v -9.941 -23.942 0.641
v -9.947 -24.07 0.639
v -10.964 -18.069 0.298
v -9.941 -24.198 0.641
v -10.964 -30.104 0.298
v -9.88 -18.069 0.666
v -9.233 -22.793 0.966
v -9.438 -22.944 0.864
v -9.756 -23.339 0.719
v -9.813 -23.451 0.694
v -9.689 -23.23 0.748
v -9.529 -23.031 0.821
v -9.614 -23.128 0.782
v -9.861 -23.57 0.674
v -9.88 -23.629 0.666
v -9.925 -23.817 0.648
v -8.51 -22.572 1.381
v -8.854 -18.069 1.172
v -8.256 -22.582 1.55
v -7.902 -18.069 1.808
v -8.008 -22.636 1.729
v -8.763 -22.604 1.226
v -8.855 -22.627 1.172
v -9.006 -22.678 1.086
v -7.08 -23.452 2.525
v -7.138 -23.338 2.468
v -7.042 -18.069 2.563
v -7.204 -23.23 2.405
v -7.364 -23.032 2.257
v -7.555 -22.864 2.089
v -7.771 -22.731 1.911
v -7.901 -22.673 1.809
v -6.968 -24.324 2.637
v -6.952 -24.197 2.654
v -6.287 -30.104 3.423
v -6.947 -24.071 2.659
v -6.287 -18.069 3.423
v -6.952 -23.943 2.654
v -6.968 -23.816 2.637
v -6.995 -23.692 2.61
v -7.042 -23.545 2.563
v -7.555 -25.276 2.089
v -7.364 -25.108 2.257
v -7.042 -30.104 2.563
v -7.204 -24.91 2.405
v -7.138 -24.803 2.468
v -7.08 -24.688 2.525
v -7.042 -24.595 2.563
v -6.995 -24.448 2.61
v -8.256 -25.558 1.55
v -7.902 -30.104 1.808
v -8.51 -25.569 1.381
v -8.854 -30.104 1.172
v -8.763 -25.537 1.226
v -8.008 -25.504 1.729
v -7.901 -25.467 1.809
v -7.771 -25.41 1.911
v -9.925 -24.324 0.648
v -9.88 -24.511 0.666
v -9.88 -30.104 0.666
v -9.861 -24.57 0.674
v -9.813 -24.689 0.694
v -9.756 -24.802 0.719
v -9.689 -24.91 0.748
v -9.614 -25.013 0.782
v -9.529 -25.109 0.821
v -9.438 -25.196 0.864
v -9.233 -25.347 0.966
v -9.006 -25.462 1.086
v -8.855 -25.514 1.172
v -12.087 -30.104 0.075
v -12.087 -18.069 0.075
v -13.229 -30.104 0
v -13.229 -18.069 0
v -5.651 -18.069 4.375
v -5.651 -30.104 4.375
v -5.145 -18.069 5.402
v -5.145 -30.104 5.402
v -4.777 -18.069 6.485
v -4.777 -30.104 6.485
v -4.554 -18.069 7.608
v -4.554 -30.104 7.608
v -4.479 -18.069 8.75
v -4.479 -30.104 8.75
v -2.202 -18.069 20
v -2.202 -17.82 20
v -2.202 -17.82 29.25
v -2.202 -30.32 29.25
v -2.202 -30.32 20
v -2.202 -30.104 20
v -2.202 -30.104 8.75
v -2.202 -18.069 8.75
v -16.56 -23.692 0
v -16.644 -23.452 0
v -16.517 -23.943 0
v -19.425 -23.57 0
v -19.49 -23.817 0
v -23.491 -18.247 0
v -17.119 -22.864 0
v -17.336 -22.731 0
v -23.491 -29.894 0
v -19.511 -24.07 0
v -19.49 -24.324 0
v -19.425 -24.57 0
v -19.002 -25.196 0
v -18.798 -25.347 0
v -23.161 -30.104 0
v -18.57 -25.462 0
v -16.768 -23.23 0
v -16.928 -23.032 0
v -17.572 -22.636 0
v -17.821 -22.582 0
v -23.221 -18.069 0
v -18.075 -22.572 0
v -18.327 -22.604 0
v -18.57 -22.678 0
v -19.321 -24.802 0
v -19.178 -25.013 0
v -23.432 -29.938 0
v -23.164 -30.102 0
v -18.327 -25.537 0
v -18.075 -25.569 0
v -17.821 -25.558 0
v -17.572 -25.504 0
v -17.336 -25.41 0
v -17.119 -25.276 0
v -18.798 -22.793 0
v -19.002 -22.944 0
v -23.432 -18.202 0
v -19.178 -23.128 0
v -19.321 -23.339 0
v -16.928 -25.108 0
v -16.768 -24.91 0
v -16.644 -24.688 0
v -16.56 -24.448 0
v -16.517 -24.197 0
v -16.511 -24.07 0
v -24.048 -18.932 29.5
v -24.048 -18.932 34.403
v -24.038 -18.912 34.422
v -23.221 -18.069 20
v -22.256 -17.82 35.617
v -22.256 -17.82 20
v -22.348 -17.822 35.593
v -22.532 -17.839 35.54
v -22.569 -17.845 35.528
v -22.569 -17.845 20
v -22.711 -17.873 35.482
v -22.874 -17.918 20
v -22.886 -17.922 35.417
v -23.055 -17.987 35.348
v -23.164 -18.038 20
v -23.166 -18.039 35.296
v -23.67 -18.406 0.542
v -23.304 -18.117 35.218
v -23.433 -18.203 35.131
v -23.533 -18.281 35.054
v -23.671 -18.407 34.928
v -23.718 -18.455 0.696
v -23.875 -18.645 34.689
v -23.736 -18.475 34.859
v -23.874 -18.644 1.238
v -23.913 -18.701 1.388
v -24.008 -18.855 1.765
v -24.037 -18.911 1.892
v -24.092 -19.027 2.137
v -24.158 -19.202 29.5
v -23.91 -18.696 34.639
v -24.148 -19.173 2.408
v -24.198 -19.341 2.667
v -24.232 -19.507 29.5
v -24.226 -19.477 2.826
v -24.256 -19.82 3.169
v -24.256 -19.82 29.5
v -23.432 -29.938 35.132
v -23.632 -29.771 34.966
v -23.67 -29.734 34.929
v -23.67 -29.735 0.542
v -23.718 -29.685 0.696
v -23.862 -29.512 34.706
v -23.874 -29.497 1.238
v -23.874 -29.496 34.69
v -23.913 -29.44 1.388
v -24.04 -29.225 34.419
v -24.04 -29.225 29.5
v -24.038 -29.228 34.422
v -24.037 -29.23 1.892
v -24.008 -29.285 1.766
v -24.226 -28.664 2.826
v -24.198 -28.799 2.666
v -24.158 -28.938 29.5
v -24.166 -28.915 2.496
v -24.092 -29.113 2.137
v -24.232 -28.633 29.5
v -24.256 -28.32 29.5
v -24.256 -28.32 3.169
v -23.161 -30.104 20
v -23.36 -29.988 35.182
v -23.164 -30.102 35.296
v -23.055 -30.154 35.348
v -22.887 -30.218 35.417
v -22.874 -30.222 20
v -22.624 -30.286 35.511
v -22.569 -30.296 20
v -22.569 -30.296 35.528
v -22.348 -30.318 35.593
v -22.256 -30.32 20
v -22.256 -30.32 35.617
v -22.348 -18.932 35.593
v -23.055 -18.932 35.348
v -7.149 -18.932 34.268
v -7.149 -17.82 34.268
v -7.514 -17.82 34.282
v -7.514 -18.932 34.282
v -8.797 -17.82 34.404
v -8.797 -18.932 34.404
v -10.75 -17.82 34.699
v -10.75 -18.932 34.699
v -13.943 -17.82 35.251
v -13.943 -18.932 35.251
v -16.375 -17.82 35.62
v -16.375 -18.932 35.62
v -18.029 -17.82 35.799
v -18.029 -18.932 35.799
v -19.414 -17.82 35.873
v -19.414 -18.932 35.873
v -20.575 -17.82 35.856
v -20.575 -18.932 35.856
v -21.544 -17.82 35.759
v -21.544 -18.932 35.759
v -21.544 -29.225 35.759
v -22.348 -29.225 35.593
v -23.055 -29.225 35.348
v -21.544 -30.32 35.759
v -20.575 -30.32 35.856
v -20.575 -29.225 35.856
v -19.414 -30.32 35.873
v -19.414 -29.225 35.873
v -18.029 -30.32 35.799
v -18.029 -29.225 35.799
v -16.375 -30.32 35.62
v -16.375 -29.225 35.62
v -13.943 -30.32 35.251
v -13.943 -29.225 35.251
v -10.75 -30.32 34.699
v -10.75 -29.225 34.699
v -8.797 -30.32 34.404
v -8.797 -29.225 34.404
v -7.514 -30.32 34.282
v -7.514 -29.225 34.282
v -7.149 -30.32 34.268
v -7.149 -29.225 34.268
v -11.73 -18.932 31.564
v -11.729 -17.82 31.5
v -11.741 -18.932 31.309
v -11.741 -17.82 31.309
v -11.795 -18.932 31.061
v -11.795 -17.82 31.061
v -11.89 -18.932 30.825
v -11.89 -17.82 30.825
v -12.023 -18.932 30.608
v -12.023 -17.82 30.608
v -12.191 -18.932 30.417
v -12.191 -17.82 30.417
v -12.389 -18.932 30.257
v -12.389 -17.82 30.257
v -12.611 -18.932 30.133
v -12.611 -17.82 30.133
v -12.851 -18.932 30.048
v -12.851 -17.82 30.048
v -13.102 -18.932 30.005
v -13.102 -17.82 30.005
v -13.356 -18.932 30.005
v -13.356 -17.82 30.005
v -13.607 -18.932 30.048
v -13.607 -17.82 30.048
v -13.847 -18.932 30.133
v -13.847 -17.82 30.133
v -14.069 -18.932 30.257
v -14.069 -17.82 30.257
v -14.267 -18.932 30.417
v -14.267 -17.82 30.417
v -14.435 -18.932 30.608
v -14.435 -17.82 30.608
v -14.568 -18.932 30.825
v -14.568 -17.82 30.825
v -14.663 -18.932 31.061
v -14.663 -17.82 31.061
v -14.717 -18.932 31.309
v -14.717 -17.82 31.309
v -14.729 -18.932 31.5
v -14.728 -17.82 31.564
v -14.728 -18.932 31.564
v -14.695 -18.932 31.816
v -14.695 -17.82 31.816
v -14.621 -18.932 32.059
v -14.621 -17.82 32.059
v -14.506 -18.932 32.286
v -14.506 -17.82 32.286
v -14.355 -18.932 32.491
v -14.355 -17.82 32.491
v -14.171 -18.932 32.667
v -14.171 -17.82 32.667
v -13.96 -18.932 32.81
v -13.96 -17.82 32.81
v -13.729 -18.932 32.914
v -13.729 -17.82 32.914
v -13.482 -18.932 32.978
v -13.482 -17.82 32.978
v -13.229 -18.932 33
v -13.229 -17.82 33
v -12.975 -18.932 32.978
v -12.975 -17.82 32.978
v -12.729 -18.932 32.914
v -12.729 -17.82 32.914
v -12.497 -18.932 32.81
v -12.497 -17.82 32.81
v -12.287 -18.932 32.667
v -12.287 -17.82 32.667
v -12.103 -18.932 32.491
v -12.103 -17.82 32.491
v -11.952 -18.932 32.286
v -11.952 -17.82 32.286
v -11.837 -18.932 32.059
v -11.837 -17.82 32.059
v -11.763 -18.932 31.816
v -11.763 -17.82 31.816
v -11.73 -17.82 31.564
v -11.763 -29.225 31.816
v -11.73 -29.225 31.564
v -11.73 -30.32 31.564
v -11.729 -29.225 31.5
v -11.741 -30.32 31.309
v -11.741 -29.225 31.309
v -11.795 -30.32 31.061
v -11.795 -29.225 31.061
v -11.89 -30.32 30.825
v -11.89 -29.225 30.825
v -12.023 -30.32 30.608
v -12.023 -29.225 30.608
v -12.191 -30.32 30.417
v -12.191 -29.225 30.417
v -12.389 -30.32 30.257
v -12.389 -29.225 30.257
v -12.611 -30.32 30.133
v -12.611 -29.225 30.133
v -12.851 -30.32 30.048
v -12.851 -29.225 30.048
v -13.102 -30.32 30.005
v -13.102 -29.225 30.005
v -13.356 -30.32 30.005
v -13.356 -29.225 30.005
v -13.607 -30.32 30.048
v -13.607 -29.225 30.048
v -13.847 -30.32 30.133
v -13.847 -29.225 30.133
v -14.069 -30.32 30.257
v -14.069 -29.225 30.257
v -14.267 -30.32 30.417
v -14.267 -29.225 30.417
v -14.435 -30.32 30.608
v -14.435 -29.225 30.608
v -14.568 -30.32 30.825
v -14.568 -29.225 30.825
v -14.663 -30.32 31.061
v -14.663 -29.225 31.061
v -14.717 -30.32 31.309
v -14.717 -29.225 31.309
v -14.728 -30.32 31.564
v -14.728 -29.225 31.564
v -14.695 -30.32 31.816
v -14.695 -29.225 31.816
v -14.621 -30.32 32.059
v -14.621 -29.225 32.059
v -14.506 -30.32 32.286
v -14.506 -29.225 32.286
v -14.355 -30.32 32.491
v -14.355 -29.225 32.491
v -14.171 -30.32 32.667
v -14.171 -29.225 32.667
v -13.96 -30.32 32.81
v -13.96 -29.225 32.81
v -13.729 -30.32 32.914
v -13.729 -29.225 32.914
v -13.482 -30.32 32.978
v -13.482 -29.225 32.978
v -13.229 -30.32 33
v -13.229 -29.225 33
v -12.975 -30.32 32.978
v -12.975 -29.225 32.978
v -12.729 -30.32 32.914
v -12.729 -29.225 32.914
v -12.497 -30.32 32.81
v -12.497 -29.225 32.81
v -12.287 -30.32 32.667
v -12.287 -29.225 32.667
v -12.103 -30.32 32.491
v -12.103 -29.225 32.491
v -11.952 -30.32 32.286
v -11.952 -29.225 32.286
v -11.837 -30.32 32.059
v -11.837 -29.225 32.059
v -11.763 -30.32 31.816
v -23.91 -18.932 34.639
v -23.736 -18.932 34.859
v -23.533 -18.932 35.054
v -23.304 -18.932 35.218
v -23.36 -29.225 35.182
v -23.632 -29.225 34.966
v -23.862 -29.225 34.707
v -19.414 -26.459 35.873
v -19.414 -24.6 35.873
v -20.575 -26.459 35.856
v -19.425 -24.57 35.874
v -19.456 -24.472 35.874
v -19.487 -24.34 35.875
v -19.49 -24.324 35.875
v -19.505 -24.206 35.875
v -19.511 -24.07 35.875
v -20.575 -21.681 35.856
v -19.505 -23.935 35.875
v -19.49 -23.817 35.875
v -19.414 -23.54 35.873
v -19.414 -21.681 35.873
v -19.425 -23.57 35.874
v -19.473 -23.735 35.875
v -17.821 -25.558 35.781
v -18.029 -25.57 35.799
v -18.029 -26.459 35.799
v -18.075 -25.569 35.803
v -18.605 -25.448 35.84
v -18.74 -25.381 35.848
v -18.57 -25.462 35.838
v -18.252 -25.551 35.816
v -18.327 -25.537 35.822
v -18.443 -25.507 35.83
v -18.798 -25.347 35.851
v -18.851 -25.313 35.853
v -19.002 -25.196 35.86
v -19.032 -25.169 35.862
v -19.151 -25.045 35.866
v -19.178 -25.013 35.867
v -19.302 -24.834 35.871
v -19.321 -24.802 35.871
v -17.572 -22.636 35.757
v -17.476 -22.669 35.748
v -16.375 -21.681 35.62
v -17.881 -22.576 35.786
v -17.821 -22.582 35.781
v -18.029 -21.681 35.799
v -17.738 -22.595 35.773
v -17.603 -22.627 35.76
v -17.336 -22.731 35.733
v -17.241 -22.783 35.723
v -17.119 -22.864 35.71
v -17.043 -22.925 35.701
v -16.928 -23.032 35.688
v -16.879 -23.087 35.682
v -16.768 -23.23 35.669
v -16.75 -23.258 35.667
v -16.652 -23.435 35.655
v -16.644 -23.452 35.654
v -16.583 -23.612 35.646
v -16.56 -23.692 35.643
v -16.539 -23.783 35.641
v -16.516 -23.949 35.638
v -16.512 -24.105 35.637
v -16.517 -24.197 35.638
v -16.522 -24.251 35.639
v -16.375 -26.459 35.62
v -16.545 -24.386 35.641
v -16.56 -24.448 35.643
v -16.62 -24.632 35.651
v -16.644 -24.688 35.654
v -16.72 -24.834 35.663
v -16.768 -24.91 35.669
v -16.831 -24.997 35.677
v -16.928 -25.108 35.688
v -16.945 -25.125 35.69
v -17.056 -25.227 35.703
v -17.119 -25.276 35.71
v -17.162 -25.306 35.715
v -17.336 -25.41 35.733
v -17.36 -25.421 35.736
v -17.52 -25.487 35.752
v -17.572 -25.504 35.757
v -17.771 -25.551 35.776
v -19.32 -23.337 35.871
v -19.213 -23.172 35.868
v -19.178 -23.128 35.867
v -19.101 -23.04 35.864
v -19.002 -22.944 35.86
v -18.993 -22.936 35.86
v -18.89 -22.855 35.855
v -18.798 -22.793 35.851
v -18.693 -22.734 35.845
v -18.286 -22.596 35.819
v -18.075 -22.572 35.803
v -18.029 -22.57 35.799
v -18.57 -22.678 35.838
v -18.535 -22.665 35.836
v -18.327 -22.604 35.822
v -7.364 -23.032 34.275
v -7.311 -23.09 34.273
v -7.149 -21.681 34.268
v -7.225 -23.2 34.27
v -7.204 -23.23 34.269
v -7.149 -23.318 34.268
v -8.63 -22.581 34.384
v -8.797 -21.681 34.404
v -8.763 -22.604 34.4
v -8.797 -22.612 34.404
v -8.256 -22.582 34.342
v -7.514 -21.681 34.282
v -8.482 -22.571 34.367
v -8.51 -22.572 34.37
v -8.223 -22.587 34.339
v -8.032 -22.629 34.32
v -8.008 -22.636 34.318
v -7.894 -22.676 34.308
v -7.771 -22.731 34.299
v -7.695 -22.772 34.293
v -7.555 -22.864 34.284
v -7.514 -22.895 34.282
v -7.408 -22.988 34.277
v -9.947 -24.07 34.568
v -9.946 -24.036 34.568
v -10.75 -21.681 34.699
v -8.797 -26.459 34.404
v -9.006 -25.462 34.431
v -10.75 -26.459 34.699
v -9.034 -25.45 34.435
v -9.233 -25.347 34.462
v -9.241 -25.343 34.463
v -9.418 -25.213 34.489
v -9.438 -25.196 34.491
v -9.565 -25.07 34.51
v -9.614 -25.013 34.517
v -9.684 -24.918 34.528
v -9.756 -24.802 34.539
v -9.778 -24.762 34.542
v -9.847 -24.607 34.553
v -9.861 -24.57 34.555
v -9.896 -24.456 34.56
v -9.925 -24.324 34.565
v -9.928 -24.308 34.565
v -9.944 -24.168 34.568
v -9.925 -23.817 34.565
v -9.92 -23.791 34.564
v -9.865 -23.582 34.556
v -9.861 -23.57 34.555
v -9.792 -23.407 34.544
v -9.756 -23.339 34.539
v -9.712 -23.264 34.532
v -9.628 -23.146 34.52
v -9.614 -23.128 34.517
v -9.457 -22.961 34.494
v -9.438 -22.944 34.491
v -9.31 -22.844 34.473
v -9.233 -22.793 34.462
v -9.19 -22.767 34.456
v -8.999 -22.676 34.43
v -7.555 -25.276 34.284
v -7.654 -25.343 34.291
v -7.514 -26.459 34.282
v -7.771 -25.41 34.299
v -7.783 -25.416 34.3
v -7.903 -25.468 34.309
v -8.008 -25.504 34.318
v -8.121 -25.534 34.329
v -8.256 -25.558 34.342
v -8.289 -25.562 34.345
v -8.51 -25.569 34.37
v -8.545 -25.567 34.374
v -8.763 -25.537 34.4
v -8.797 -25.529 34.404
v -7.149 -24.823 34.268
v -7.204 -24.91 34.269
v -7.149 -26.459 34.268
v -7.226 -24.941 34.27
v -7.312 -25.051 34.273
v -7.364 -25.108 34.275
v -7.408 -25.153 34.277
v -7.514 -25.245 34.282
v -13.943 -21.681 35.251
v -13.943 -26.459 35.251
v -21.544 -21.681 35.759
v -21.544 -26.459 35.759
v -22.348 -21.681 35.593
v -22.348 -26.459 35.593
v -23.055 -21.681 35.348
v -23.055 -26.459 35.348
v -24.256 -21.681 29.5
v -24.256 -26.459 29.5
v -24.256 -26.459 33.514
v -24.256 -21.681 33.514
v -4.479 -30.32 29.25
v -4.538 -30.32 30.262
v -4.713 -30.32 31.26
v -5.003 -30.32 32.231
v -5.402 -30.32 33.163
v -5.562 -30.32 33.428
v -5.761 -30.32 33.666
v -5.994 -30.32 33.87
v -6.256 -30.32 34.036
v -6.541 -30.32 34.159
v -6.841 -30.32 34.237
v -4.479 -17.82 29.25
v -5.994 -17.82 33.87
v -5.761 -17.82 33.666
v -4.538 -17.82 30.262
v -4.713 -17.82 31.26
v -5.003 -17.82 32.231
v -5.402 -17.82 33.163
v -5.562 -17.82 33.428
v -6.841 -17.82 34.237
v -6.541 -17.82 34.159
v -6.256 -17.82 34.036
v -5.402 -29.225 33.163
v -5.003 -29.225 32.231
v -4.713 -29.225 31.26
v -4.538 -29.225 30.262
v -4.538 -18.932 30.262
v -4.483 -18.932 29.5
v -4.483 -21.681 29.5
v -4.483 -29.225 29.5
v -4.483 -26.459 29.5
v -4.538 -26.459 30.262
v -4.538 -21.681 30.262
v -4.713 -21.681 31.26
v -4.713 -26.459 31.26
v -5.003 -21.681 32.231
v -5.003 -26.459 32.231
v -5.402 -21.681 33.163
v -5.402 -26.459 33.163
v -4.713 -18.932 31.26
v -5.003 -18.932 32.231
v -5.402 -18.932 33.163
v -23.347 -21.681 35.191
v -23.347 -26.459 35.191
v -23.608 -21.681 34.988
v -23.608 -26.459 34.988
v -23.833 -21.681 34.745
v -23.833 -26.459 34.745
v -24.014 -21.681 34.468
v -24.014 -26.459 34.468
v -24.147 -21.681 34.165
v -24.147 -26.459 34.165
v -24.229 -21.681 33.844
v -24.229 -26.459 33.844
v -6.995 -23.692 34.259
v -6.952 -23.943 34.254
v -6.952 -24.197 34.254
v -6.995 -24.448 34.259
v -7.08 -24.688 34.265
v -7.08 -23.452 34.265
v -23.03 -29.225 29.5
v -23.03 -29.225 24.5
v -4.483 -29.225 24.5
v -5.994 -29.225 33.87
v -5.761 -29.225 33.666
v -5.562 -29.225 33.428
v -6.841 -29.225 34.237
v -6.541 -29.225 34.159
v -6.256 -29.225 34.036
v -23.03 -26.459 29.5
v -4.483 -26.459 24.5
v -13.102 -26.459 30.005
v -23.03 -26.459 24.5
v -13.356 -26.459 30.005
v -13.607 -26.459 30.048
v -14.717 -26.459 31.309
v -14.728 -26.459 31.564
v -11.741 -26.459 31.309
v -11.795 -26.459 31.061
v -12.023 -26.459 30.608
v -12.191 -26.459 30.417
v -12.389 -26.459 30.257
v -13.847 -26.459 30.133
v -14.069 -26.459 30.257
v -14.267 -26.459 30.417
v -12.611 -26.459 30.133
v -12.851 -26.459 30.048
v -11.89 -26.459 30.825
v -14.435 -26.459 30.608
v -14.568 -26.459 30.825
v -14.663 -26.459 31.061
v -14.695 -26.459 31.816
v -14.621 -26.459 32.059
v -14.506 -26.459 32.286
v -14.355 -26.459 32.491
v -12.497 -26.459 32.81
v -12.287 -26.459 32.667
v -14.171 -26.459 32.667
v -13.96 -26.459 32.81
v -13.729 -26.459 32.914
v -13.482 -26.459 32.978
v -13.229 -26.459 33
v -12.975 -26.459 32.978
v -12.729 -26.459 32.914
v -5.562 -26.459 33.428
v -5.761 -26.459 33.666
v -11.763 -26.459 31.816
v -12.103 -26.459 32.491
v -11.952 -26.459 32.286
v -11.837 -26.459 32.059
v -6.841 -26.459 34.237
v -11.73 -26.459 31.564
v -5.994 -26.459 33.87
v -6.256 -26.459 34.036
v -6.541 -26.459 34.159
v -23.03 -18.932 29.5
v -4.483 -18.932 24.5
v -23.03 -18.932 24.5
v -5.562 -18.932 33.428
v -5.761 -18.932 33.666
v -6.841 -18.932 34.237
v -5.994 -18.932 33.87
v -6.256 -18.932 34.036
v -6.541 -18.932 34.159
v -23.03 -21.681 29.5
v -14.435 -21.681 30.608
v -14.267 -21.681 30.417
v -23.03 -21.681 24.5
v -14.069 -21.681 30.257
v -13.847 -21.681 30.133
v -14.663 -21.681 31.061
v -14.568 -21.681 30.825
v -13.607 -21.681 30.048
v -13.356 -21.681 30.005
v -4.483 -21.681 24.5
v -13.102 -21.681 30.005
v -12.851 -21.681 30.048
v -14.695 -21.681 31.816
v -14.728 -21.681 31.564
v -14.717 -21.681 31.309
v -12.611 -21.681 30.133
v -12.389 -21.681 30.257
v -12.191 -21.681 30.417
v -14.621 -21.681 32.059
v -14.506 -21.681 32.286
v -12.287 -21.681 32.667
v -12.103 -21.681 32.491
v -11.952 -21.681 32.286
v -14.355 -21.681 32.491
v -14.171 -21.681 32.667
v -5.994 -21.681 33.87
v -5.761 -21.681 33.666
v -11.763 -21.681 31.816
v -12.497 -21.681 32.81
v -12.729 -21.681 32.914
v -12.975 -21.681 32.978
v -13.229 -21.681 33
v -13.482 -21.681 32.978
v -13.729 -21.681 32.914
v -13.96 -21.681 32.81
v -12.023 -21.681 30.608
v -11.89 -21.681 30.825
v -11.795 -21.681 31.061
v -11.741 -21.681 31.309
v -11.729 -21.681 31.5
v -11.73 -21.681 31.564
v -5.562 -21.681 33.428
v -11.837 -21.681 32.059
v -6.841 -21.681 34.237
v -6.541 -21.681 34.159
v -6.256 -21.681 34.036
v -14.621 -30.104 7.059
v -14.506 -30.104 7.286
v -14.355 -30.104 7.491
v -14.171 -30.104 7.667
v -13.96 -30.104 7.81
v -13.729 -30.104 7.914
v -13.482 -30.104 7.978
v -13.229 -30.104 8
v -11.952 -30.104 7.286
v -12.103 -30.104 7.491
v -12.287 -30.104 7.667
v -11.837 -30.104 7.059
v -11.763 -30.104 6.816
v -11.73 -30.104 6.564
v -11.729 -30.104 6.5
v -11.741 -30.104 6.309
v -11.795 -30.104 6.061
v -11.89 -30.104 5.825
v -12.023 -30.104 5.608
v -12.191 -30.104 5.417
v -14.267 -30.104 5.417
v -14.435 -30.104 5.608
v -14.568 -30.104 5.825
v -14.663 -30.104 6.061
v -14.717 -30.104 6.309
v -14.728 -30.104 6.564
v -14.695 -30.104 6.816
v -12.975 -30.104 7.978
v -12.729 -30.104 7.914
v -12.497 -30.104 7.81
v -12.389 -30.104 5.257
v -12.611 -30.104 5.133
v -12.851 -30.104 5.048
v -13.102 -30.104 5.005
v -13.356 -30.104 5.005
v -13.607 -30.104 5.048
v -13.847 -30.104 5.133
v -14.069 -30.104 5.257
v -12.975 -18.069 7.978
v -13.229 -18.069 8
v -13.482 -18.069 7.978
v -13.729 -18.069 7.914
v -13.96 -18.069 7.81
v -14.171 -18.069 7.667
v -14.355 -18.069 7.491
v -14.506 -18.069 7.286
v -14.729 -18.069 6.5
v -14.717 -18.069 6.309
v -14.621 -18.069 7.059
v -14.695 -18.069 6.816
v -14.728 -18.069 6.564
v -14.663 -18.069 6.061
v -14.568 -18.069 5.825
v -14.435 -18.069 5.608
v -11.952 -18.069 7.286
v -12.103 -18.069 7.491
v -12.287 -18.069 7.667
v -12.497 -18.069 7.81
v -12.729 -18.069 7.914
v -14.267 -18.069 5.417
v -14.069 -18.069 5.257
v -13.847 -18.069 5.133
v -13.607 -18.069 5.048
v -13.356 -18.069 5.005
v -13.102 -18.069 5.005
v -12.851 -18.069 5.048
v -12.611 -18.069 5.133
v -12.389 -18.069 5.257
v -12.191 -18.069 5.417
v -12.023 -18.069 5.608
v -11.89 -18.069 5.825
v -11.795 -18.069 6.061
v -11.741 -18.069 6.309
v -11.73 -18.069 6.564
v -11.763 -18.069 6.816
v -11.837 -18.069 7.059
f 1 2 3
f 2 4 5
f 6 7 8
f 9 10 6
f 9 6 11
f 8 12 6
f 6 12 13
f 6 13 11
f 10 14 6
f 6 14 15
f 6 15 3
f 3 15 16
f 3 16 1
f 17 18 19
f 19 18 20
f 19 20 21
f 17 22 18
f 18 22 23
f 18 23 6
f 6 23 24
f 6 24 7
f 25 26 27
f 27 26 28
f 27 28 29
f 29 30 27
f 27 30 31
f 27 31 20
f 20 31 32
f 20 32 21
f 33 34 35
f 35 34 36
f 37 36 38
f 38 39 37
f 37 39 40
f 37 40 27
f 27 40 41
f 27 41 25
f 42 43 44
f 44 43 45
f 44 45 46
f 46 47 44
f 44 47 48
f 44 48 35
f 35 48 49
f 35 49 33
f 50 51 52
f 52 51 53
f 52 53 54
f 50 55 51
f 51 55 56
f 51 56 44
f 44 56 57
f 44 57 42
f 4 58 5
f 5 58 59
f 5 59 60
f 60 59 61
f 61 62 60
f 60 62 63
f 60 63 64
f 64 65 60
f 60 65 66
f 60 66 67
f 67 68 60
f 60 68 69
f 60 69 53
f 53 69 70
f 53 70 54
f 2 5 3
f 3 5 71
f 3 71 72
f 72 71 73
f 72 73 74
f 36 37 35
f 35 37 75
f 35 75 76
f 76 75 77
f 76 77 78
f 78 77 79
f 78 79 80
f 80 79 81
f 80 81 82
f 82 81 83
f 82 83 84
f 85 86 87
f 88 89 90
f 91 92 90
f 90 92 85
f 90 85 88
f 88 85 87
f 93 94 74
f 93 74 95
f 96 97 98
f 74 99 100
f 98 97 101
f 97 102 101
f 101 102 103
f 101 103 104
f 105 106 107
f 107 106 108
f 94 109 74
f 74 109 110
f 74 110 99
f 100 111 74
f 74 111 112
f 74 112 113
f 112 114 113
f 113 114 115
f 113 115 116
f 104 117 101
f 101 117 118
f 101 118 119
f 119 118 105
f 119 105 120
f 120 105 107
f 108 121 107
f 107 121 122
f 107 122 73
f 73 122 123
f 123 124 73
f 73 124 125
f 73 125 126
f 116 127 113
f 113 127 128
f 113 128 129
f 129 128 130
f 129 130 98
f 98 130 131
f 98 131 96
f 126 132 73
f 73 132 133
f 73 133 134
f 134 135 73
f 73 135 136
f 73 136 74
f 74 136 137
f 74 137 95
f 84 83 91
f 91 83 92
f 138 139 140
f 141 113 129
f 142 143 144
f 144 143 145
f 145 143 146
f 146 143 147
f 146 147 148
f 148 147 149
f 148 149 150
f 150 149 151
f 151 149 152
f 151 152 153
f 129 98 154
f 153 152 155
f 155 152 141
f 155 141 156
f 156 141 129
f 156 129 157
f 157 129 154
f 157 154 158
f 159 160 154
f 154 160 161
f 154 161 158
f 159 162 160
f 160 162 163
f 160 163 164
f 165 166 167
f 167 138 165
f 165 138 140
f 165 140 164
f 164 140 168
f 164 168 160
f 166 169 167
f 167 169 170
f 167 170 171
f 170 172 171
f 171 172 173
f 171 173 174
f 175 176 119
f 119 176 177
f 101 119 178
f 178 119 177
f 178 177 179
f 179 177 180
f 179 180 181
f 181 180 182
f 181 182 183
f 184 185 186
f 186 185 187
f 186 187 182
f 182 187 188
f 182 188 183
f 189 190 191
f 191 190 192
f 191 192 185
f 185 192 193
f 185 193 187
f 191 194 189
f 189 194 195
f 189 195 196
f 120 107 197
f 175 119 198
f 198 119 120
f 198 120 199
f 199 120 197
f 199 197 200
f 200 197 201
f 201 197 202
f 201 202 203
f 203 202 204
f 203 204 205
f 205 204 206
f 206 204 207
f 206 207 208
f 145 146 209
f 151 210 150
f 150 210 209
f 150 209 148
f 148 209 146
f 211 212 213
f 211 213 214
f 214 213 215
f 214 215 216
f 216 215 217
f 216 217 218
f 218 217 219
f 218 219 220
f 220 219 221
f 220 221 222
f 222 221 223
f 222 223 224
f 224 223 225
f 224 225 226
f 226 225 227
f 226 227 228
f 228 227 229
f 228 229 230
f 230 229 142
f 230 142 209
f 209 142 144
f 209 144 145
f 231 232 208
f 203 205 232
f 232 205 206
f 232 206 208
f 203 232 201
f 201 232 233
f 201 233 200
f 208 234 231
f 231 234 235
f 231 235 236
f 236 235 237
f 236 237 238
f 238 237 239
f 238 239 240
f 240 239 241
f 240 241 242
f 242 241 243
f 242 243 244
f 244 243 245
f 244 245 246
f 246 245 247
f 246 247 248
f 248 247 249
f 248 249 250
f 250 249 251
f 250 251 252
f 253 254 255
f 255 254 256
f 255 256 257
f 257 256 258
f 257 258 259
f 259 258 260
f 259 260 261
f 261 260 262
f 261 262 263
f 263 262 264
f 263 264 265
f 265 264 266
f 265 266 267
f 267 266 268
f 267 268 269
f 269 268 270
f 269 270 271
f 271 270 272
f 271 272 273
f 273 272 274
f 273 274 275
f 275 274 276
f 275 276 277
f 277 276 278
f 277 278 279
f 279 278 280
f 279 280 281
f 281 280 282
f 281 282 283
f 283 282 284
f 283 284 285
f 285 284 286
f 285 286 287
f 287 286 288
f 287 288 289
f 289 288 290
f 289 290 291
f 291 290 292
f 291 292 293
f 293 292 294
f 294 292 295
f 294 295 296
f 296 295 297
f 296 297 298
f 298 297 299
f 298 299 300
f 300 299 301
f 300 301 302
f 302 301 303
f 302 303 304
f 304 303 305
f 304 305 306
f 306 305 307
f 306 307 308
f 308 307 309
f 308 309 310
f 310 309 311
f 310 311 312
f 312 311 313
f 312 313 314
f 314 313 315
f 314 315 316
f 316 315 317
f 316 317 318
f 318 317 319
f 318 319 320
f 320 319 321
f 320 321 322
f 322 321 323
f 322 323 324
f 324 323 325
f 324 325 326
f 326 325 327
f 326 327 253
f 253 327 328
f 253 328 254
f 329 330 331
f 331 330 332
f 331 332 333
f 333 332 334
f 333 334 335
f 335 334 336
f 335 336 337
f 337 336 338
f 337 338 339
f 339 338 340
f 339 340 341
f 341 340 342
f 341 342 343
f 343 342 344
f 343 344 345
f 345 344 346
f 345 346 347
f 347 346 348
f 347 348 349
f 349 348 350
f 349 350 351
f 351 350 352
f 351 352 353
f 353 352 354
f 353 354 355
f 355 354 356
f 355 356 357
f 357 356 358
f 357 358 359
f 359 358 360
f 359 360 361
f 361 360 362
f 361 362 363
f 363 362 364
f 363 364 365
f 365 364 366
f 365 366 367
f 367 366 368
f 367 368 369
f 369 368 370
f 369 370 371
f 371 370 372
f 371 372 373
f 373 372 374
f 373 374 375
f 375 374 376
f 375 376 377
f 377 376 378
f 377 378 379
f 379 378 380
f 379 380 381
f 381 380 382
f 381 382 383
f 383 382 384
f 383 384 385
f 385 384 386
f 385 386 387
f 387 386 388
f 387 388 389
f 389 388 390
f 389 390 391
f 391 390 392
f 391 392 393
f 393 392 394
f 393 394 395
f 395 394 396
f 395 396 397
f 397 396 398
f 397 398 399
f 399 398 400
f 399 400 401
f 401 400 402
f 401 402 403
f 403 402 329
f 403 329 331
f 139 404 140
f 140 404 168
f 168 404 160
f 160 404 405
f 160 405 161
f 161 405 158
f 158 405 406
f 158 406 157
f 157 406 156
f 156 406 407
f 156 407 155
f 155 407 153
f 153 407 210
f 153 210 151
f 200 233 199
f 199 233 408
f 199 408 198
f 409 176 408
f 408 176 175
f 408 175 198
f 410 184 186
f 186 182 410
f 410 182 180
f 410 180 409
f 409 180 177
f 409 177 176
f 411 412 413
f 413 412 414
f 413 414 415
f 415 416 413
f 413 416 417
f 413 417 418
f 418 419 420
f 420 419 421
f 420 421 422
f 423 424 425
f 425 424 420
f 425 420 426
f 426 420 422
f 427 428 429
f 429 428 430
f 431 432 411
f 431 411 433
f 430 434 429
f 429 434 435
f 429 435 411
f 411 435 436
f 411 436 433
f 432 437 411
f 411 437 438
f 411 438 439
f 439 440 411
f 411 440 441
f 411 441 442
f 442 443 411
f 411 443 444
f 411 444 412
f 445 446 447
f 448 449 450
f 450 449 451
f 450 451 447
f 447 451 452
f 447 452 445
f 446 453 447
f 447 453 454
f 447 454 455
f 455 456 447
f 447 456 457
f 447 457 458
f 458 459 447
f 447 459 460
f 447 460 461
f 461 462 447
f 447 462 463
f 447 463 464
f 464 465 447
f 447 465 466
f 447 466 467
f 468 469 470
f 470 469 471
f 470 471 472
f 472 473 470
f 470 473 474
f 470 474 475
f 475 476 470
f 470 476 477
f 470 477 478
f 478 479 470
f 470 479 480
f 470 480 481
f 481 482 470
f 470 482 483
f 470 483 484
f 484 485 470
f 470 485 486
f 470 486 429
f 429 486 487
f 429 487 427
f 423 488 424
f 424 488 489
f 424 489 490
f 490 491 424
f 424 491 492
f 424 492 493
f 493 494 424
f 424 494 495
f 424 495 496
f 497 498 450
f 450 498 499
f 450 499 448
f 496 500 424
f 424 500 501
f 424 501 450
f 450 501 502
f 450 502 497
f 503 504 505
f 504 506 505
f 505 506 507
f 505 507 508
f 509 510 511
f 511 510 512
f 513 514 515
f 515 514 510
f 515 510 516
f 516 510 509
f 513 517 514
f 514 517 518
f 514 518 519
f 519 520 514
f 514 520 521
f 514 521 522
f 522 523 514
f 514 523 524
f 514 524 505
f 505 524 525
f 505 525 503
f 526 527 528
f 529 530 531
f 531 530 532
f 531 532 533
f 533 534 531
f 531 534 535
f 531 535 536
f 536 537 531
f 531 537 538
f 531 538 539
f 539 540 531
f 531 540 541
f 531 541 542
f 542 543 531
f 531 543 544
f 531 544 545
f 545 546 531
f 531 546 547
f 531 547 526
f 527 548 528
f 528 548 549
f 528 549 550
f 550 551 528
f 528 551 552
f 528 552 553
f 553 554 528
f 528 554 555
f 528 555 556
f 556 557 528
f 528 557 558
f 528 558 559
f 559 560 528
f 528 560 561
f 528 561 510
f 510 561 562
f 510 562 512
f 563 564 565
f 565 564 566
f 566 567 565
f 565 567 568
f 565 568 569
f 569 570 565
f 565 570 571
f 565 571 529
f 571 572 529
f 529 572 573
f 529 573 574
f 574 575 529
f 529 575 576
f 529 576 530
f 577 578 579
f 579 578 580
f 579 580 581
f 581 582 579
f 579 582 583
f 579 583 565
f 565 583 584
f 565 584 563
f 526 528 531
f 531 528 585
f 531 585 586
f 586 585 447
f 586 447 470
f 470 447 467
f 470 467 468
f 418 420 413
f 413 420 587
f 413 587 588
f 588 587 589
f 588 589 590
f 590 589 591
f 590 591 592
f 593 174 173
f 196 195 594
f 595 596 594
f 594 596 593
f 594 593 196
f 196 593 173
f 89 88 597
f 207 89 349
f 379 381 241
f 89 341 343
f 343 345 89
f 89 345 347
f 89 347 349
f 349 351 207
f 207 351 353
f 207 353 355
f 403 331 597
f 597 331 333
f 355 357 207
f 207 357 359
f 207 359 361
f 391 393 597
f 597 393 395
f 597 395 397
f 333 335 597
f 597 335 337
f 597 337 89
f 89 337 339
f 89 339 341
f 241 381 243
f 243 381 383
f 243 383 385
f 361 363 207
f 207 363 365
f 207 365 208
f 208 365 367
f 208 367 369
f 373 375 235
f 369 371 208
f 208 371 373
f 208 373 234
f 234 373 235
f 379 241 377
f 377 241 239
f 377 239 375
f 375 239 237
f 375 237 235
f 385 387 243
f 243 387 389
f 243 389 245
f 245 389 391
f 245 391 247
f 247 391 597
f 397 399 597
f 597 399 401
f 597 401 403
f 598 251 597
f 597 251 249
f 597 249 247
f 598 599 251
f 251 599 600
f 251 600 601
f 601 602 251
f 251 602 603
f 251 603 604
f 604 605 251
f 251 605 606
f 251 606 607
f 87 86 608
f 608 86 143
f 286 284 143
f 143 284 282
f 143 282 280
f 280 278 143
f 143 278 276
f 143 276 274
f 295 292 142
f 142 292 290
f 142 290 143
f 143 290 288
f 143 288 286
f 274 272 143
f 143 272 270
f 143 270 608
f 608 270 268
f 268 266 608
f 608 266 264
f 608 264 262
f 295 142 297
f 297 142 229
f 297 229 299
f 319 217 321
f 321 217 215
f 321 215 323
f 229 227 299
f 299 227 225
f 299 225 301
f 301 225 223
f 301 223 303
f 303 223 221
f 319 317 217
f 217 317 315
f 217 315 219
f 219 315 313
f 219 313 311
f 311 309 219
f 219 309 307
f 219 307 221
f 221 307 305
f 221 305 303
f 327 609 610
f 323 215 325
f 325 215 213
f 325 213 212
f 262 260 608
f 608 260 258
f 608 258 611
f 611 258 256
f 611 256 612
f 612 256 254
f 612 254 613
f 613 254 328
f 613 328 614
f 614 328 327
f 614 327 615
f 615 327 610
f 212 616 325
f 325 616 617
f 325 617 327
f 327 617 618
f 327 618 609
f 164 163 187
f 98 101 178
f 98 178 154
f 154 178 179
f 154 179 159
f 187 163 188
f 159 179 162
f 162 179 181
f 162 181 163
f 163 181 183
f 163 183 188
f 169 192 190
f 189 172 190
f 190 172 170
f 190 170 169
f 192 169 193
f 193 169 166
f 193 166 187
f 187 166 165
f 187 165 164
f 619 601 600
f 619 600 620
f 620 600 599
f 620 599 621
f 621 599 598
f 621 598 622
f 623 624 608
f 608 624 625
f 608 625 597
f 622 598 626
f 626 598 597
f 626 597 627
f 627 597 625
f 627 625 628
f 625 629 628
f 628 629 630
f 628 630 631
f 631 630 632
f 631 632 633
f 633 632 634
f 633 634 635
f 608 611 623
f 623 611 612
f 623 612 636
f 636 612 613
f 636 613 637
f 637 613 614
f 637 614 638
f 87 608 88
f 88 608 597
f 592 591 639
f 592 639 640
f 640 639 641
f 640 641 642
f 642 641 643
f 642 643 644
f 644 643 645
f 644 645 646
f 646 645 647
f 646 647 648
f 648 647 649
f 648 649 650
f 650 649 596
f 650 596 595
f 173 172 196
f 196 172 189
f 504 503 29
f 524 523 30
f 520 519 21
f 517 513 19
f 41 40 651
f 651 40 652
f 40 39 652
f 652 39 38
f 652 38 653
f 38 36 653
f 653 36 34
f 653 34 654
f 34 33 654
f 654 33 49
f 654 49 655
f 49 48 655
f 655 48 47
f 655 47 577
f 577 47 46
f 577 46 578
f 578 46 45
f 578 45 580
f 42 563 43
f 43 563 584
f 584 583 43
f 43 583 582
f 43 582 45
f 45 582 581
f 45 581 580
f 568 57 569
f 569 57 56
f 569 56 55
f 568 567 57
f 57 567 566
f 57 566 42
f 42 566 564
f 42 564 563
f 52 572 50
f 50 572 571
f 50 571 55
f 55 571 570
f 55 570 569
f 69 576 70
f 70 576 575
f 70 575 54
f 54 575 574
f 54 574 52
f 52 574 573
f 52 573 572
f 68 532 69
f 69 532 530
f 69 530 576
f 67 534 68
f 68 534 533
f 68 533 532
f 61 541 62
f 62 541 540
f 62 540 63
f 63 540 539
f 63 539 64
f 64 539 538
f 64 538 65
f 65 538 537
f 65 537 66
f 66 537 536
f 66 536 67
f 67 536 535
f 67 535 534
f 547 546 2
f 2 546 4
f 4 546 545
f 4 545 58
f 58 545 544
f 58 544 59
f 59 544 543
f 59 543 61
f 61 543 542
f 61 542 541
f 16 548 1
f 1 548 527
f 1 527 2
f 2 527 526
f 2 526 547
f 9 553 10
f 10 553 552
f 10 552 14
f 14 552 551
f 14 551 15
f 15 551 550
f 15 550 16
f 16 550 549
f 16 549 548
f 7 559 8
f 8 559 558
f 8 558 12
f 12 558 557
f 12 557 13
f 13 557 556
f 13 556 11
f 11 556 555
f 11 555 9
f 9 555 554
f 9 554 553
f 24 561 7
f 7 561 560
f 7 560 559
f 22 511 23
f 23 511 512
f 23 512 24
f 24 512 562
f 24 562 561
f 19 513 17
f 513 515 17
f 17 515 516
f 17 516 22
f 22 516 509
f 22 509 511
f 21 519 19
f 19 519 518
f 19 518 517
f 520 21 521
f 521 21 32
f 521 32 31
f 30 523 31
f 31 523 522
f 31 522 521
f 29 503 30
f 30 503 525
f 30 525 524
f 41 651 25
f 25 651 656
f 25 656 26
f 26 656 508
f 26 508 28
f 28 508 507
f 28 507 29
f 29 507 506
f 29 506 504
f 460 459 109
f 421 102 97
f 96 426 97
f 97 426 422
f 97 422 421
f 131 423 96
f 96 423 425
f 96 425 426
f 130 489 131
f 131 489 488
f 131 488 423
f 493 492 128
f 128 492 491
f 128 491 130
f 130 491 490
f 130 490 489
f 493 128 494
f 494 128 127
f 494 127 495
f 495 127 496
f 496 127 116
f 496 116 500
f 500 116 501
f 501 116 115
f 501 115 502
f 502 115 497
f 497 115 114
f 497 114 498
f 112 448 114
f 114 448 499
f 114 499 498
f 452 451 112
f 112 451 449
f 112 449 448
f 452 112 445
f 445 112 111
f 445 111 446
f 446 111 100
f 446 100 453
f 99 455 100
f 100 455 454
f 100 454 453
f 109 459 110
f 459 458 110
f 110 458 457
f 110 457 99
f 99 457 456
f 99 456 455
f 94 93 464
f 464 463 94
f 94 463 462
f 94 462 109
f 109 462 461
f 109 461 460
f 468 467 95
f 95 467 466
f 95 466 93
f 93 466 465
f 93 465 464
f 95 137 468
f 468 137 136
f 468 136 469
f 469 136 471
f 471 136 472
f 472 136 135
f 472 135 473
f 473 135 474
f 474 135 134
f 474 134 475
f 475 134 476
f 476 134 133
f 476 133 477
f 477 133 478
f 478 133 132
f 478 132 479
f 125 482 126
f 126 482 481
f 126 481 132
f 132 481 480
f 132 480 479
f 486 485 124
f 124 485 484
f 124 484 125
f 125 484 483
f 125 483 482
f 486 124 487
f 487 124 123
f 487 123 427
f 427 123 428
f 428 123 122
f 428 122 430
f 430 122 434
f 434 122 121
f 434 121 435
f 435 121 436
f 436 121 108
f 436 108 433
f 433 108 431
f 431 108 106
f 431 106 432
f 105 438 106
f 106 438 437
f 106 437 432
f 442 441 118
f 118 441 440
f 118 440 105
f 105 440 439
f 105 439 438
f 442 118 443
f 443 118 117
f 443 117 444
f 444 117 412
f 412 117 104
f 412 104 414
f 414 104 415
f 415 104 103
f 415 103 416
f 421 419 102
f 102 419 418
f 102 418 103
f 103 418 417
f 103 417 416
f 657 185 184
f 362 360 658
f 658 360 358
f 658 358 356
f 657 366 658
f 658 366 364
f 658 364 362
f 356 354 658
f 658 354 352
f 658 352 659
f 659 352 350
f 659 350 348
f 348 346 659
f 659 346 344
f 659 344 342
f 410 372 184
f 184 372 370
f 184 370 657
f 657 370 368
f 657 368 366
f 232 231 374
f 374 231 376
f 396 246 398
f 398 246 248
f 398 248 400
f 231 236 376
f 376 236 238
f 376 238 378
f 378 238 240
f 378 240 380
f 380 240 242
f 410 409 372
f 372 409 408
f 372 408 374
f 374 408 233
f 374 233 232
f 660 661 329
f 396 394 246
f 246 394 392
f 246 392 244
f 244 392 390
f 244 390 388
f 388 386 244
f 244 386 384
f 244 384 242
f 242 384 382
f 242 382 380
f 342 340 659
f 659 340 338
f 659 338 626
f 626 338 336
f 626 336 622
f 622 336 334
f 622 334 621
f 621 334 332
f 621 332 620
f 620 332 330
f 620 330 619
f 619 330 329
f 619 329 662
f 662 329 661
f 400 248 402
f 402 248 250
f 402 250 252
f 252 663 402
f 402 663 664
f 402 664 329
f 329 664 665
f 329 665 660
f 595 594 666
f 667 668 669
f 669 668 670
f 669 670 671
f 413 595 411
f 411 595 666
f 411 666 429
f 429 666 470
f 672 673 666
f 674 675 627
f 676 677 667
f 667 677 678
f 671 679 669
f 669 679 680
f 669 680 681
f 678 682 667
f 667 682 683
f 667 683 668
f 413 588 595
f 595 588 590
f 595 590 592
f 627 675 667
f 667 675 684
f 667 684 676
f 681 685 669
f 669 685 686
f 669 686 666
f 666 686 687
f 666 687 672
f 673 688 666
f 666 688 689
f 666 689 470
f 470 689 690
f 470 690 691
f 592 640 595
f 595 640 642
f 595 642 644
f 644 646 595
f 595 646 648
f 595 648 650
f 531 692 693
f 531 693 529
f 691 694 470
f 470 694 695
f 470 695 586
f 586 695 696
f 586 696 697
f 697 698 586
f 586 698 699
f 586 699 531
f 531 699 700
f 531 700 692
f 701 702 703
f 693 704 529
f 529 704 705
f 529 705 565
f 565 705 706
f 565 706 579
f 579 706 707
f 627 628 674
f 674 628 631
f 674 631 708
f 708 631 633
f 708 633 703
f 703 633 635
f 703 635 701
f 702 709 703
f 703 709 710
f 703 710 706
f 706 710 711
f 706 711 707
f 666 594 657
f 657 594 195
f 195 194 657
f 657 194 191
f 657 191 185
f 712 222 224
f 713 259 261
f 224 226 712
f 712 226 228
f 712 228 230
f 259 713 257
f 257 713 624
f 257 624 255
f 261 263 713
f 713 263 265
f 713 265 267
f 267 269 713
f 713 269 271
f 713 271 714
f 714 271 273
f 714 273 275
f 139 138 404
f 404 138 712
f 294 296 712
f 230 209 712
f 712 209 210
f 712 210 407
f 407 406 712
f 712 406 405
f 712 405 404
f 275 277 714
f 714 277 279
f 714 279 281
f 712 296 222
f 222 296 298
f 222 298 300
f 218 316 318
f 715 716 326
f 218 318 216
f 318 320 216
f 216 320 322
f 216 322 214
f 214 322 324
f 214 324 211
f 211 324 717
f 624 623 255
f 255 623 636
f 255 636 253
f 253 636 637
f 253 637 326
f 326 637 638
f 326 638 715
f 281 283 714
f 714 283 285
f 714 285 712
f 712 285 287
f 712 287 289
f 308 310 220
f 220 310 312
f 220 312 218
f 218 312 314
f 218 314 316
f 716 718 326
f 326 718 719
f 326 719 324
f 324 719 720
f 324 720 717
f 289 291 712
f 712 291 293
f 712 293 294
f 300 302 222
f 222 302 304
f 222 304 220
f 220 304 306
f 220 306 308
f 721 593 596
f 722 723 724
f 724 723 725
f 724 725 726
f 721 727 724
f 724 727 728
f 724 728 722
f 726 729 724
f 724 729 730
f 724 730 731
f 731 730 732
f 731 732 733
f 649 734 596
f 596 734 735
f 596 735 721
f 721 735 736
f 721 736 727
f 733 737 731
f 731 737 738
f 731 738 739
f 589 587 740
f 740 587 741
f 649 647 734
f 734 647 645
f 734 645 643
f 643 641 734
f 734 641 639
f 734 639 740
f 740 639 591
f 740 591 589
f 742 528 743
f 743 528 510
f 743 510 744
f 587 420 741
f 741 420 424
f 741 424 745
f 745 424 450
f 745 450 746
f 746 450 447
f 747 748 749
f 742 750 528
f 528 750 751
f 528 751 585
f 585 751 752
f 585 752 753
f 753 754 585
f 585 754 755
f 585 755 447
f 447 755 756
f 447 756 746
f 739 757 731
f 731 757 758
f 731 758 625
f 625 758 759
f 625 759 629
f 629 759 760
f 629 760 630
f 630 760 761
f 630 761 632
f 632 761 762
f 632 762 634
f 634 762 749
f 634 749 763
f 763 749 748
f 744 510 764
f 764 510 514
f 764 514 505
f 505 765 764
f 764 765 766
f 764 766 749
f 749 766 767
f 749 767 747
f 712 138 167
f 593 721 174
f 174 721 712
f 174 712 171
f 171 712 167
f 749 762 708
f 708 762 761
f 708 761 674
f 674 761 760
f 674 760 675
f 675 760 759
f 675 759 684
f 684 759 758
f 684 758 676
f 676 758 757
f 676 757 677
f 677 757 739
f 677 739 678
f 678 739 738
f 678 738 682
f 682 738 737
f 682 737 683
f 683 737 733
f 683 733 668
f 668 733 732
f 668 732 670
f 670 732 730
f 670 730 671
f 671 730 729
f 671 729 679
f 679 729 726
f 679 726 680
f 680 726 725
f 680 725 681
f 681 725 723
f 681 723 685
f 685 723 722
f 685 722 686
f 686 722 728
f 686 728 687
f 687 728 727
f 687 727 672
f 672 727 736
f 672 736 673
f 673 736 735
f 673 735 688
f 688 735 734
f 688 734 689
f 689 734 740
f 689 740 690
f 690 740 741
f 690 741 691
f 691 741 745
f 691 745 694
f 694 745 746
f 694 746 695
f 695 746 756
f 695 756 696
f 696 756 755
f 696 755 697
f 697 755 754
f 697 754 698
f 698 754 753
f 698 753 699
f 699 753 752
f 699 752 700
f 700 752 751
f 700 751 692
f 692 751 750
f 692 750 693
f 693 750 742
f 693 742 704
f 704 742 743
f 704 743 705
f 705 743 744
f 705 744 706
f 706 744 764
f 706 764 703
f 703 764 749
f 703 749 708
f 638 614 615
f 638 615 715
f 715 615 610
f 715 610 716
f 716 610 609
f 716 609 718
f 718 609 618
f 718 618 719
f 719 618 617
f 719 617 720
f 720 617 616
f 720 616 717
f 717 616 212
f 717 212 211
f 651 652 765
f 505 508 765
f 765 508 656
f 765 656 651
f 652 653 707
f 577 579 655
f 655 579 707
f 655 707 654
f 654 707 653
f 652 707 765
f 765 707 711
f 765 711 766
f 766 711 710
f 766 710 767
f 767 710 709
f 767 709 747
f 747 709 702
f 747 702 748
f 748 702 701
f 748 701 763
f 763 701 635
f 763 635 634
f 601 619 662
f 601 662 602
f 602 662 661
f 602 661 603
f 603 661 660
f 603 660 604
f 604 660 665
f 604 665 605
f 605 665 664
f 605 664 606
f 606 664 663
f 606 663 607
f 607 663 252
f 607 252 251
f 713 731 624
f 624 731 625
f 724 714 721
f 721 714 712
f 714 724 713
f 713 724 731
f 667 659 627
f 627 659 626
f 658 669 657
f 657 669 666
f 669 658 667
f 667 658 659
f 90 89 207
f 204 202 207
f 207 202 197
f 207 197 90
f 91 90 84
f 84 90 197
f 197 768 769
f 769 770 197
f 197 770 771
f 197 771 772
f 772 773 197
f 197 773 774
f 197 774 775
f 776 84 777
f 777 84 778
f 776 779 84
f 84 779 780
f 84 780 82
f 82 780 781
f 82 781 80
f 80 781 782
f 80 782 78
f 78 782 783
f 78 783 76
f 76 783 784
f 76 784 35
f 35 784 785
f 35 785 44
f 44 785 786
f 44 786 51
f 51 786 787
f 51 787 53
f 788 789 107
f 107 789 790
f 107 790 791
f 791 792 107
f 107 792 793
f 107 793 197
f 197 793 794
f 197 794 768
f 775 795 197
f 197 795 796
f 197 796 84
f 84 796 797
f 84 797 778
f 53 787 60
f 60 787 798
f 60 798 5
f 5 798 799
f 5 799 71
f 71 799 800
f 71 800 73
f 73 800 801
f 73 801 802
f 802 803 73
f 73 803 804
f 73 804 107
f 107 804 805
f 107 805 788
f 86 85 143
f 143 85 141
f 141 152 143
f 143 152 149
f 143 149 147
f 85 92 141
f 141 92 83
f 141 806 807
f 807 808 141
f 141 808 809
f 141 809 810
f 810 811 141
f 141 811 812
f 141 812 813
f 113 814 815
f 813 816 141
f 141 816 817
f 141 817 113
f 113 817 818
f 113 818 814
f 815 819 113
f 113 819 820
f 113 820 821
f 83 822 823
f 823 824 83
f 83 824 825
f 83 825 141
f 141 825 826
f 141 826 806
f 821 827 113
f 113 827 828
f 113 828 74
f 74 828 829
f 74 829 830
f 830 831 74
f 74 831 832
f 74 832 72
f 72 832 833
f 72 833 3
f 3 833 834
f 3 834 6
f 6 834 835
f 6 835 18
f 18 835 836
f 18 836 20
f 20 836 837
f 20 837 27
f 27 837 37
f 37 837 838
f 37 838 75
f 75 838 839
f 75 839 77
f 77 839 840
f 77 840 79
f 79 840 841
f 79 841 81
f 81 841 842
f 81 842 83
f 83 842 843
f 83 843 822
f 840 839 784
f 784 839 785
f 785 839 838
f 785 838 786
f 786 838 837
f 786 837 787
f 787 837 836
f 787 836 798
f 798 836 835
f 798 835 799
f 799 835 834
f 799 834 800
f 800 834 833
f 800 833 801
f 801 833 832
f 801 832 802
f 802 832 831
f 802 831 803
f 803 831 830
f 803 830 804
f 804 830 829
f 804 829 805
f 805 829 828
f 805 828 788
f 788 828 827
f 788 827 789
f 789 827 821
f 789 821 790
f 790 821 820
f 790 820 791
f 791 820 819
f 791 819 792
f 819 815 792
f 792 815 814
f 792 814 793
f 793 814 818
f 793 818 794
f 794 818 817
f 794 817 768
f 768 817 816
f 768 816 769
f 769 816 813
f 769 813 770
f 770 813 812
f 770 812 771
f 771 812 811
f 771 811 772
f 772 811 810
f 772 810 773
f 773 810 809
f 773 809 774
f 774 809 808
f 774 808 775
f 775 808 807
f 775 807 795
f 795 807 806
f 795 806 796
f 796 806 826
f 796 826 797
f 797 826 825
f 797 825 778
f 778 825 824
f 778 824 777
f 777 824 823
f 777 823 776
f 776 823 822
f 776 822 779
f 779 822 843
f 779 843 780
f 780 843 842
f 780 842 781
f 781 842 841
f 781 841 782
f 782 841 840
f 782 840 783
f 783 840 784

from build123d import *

# Parameters (mm, degrees)
SKETCH1_W               = 22.054431489
SKETCH1_H               = 12.5
BOSS_EXTRUDE1_DEPTH     = 38
CUT_EXTRUDE1_DEPTH      = 10
CUT_EXTRUDE1_DEPTH_BACK = 15
SKETCH2_R               = 1.5
FILLET3_R               = 2
SKETCH5_R               = 1.5
CUT_EXTRUDE4_DEPTH      = 53.86644408
SKETCH16_W              = 22.05443149
SKETCH16_H              = 2.749314183
SKETCH16_W_2            = 22.143232671
SKETCH16_H_2            = 2.765172048
CUT_EXTRUDE6_DEPTH      = 8.5
FILLET4_R               = 2
SKETCH17_W              = 18.547612126
SKETCH17_H              = 2.749314183
SKETCH17_H_2            = 2.765172048
CUT_EXTRUDE7_DEPTH      = 5
SKETCH18_W              = 23.880033653
SKETCH18_H              = 0.742090051
SKETCH18_W_2            = 23.982039935
SKETCH18_H_2            = 0.706785536
CUT_EXTRUDE8_DEPTH      = 20


with BuildPart() as part:
    # Sketch1 → Boss-Extrude1 (new body)
    with BuildSketch(Plane.XY):
        with Locations((-13.228930986, -24.070183414)):
            Rectangle(SKETCH1_W, SKETCH1_H)
    extrude(amount=BOSS_EXTRUDE1_DEPTH)

    # Sketch2 → Cut-Extrude1 (cut, two sides: drawn at the far end of the back side and taken through both)
    with BuildSketch(Plane.XZ.offset(30.320183414).offset(-CUT_EXTRUDE1_DEPTH_BACK)):
        with Locations(Location((-13.228930986, 6.5, 0), (0, 0, 90))):
            Circle(SKETCH2_R)
        with Locations(Location((-13.228930986, 31.5, 0), (0, 0, 90))):
            Circle(SKETCH2_R)
        with BuildLine():
            Line((-4.478930986, 29.25), (-2.201715242, 29.25))
            add(Edge.make_bspline(
                [(-24.256146731, 29.25), (-34.277912729, 38.417119108), (-13.227499763, 50.308047167), (7.840407292, 38.416977249), (-2.201715242, 29.25)],
                knots=[0, 0, 0, 0, 0.49986218, 1, 1, 1, 1], degree=3))
            add(Edge.make_bspline(
                [(-6.103895584, 34.329012749), (-10.720559386, 33.527203043), (-28.641384523, 40.845191705), (-24.256146731, 29.25)],
                knots=[0, 0, 0, 0, 1, 1, 1, 1], degree=3))
            ThreePointArc((-6.103895584, 34.329012749), (-4.895067543, 31.916312081), (-4.478930986, 29.25))
        make_face()
        with BuildLine():
            Line((-4.478930986, 8.75), (-2.201715242, 8.75))
            add(Edge.make_bspline(
                [(-2.201715242, 8.75), (5.39210746, 3.880294823), (-0.777052631, -4.523329032), (-17.174300591, -10.623347238), (-34.821400648, -0.026005424), (-24.256146731, 8.75)],
                knots=[0, 0, 0, 0, 0.283272691, 0.504244858, 1, 1, 1, 1], degree=3))
            add(Edge.make_bspline(
                [(-23.490579314, 0), (-24.966512963, 4.237786421), (-24.256146731, 8.75)],
                knots=[0, 0, 0, 1, 1, 1], degree=2))
            Line((-23.490579314, 0), (-13.228930986, 0))
            ThreePointArc((-13.228930986, 0), (-7.041746651, 2.562815665), (-4.478930986, 8.75))
        make_face()
    extrude(amount=CUT_EXTRUDE1_DEPTH + CUT_EXTRUDE1_DEPTH_BACK, mode=Mode.SUBTRACT)

    # Fillet3
    # the kernel refuses this fillet: 2 mm, written as the material it takes off along each edge
    with BuildSketch(Plane(origin=(-24.256146731, -17.820183414, -5.498495188), x_dir=(1, 0, 0), z_dir=(0, 0, 1))) as fillet3_piece_1:
        with BuildLine():
            CenterArc((FILLET3_R, -FILLET3_R), FILLET3_R, 90, 90)
            Line((0, -FILLET3_R), (-FILLET3_R * 0.02, -FILLET3_R))
            Line((-FILLET3_R * 0.02, -FILLET3_R), (-FILLET3_R * 0.02, FILLET3_R * 0.02))
            Line((-FILLET3_R * 0.02, FILLET3_R * 0.02), (FILLET3_R, FILLET3_R * 0.02))
            Line((FILLET3_R, FILLET3_R * 0.02), (FILLET3_R, 0))
        make_face()
    extrude(amount=44.984872581, mode=Mode.SUBTRACT)
    with BuildSketch(Plane(origin=(-24.256146731, -30.320183414, -5.498495188), x_dir=(1, 0, 0), z_dir=(0, 0, 1))) as fillet3_piece_2:
        with BuildLine():
            CenterArc((FILLET3_R, FILLET3_R), FILLET3_R, 180, 90)
            Line((0, FILLET3_R), (-FILLET3_R * 0.02, FILLET3_R))
            Line((-FILLET3_R * 0.02, FILLET3_R), (-FILLET3_R * 0.02, -FILLET3_R * 0.02))
            Line((-FILLET3_R * 0.02, -FILLET3_R * 0.02), (FILLET3_R, -FILLET3_R * 0.02))
            Line((FILLET3_R, -FILLET3_R * 0.02), (FILLET3_R, 0))
        make_face()
    extrude(amount=44.984872581, mode=Mode.SUBTRACT)
    with BuildSketch(Plane(origin=(-24.256146731, -17.374523396, 3.001504812), x_dir=(0.16676818592575765, -1.261066300243152e-15, -0.9859961319209278), z_dir=(0, -1, 0))) as fillet3_piece_3:
        with BuildLine():
            CenterArc((0.168096911, 1.999974157), FILLET3_R, 260.400032587, 9.891234523)
            Line((-0.165439461, 0.027981894), (-0.172110188, -0.011457952))
            Line((-0.172110188, -0.011457952), (-0.006670727, -0.039439845))
            Line((-0.006670727, -0.039439845), (-0.00020343, -0.039999483))
            ThreePointArc((-0.00020343, -0.039999483), (0.089132026, -0.040226606), (0.178467349, -0.039999483))
            Line((0.178467349, -0.039999483), (0.178264007, 0))
        make_face()
    extrude(amount=13.391320036, mode=Mode.SUBTRACT)
    with BuildSketch(Plane(origin=(-24.256146731, -14.125185169, 34.486377393), x_dir=(0.8125654725305003, 0, 0.5828699279009725), z_dir=(0, -1, 0))) as fillet3_piece_4:
        with BuildLine():
            CenterArc((1.058597408, -1.955531144), FILLET3_R, 77.895172565, 66.452175148)
            Line((-0.566533537, -0.789791288), (-0.599036156, -0.766476491))
            Line((-0.599036156, -0.766476491), (-0.032502619, 0.023314797))
            Line((-0.032502619, 0.023314797), (-0.009827922, 0.038773856))
            ThreePointArc((-0.009827922, 0.038773856), (0.740246051, 0.125750941), (1.486387336, 0.039110623))
            Line((1.486387336, 0.039110623), (1.477999298, 0))
        make_face()
    extrude(amount=19.88999649, mode=Mode.SUBTRACT)

    # Sketch5 → Cut-Extrude4 (cut, through all)
    with BuildSketch(Plane.XY):
        with Locations(Location((-18.011106811, -24.070183414, 0), (0, 0, 180))):
            Circle(SKETCH5_R)
        with Locations(Location((-8.446755162, -24.070183414, 0), (0, 0, 180))):
            Circle(SKETCH5_R)
    extrude(amount=CUT_EXTRUDE4_DEPTH, mode=Mode.SUBTRACT)

    # Sketch16 → Cut-Extrude6 (cut)
    with BuildSketch(Plane.XY.offset(38)):
        with Locations((-13.228930985, -20.306320009)):
            Rectangle(SKETCH16_W, SKETCH16_H)
        with Locations((-13.184530395, -27.841975748)):
            Rectangle(SKETCH16_W_2, SKETCH16_H_2)
    extrude(amount=-CUT_EXTRUDE6_DEPTH, mode=Mode.SUBTRACT)

    # Fillet4
    # the kernel refuses this fillet: 2 mm, written as the material it takes off along each edge
    with BuildSketch(Plane(origin=(-6.103895584, -22.334365667, 34.329012749), x_dir=(0.515368054600745, 0, -0.8569689424343473), z_dir=(0, 1, 0))) as fillet4_piece_1:
        with BuildLine():
            CenterArc((1.205528974, 1.993941708), FILLET4_R, 212.228268917, 62.232476225)
            Line((-0.486331325, 0.927354287), (-0.520168531, 0.906022538))
            ThreePointArc((-0.520168531, 0.906022538), (-0.25689069, 0.456334761), (-0.037300681, -0.01444504))
            Line((-0.037300681, -0.01444504), (-0.003111043, -0.039878834))
            ThreePointArc((-0.003111043, -0.039878834), (0.68054055, -0.066505026), (1.364192143, -0.039878834))
            Line((1.364192143, -0.039878834), (1.3610811, 0))
        make_face()
    extrude(amount=7.916885004, mode=Mode.SUBTRACT)
    with BuildSketch(Plane(origin=(-6.103895584, -29.862092474, 34.329012749), x_dir=(0.515368054600745, 0, -0.8569689424343473), z_dir=(0, 1, 0))) as fillet4_piece_2:
        with BuildLine():
            CenterArc((1.205528974, 1.993941708), FILLET4_R, 212.228268917, 62.232476225)
            Line((-0.486331325, 0.927354287), (-0.520168531, 0.906022538))
            ThreePointArc((-0.520168531, 0.906022538), (-0.25689069, 0.456334761), (-0.037300681, -0.01444504))
            Line((-0.037300681, -0.01444504), (-0.003111043, -0.039878834))
            ThreePointArc((-0.003111043, -0.039878834), (0.68054055, -0.066505026), (1.364192143, -0.039878834))
            Line((1.364192143, -0.039878834), (1.3610811, 0))
        make_face()
    extrude(amount=11.583818124, mode=Mode.SUBTRACT)
    with BuildSketch(Plane(origin=(-6.103895584, -33.722886164, 34.329012749), x_dir=(0.515368054600745, 0, -0.8569689424343473), z_dir=(0, 1, 0))) as fillet4_piece_3:
        with BuildLine():
            CenterArc((1.205528974, 1.993941708), FILLET4_R, 212.228268917, 62.232476225)
            Line((-0.486331325, 0.927354287), (-0.520168531, 0.906022538))
            ThreePointArc((-0.520168531, 0.906022538), (-0.25689069, 0.456334761), (-0.037300681, -0.01444504))
            Line((-0.037300681, -0.01444504), (-0.003111043, -0.039878834))
            ThreePointArc((-0.003111043, -0.039878834), (0.68054055, -0.066505026), (1.364192143, -0.039878834))
            Line((1.364192143, -0.039878834), (1.3610811, 0))
        make_face()
    extrude(amount=7.901027143, mode=Mode.SUBTRACT)

    # Sketch17 → Cut-Extrude7 (cut)
    with BuildSketch(Plane.XY.offset(29.5)):
        with Locations((-13.756309207, -20.306320009)):
            Rectangle(SKETCH17_W, SKETCH17_H)
        with Locations((-13.756309207, -27.841975748)):
            Rectangle(SKETCH17_W, SKETCH17_H_2)
    extrude(amount=-CUT_EXTRUDE7_DEPTH, mode=Mode.SUBTRACT)

    # Sketch18 → Cut-Extrude8 (cut)
    with BuildSketch(Plane.XY):
        with Locations((-13.859477608, -30.474932984)):
            Rectangle(SKETCH18_W, SKETCH18_H)
        with Locations((-13.808474467, -17.715166293)):
            Rectangle(SKETCH18_W_2, SKETCH18_H_2)
    extrude(amount=CUT_EXTRUDE8_DEPTH, mode=Mode.SUBTRACT)


solid = part.part
